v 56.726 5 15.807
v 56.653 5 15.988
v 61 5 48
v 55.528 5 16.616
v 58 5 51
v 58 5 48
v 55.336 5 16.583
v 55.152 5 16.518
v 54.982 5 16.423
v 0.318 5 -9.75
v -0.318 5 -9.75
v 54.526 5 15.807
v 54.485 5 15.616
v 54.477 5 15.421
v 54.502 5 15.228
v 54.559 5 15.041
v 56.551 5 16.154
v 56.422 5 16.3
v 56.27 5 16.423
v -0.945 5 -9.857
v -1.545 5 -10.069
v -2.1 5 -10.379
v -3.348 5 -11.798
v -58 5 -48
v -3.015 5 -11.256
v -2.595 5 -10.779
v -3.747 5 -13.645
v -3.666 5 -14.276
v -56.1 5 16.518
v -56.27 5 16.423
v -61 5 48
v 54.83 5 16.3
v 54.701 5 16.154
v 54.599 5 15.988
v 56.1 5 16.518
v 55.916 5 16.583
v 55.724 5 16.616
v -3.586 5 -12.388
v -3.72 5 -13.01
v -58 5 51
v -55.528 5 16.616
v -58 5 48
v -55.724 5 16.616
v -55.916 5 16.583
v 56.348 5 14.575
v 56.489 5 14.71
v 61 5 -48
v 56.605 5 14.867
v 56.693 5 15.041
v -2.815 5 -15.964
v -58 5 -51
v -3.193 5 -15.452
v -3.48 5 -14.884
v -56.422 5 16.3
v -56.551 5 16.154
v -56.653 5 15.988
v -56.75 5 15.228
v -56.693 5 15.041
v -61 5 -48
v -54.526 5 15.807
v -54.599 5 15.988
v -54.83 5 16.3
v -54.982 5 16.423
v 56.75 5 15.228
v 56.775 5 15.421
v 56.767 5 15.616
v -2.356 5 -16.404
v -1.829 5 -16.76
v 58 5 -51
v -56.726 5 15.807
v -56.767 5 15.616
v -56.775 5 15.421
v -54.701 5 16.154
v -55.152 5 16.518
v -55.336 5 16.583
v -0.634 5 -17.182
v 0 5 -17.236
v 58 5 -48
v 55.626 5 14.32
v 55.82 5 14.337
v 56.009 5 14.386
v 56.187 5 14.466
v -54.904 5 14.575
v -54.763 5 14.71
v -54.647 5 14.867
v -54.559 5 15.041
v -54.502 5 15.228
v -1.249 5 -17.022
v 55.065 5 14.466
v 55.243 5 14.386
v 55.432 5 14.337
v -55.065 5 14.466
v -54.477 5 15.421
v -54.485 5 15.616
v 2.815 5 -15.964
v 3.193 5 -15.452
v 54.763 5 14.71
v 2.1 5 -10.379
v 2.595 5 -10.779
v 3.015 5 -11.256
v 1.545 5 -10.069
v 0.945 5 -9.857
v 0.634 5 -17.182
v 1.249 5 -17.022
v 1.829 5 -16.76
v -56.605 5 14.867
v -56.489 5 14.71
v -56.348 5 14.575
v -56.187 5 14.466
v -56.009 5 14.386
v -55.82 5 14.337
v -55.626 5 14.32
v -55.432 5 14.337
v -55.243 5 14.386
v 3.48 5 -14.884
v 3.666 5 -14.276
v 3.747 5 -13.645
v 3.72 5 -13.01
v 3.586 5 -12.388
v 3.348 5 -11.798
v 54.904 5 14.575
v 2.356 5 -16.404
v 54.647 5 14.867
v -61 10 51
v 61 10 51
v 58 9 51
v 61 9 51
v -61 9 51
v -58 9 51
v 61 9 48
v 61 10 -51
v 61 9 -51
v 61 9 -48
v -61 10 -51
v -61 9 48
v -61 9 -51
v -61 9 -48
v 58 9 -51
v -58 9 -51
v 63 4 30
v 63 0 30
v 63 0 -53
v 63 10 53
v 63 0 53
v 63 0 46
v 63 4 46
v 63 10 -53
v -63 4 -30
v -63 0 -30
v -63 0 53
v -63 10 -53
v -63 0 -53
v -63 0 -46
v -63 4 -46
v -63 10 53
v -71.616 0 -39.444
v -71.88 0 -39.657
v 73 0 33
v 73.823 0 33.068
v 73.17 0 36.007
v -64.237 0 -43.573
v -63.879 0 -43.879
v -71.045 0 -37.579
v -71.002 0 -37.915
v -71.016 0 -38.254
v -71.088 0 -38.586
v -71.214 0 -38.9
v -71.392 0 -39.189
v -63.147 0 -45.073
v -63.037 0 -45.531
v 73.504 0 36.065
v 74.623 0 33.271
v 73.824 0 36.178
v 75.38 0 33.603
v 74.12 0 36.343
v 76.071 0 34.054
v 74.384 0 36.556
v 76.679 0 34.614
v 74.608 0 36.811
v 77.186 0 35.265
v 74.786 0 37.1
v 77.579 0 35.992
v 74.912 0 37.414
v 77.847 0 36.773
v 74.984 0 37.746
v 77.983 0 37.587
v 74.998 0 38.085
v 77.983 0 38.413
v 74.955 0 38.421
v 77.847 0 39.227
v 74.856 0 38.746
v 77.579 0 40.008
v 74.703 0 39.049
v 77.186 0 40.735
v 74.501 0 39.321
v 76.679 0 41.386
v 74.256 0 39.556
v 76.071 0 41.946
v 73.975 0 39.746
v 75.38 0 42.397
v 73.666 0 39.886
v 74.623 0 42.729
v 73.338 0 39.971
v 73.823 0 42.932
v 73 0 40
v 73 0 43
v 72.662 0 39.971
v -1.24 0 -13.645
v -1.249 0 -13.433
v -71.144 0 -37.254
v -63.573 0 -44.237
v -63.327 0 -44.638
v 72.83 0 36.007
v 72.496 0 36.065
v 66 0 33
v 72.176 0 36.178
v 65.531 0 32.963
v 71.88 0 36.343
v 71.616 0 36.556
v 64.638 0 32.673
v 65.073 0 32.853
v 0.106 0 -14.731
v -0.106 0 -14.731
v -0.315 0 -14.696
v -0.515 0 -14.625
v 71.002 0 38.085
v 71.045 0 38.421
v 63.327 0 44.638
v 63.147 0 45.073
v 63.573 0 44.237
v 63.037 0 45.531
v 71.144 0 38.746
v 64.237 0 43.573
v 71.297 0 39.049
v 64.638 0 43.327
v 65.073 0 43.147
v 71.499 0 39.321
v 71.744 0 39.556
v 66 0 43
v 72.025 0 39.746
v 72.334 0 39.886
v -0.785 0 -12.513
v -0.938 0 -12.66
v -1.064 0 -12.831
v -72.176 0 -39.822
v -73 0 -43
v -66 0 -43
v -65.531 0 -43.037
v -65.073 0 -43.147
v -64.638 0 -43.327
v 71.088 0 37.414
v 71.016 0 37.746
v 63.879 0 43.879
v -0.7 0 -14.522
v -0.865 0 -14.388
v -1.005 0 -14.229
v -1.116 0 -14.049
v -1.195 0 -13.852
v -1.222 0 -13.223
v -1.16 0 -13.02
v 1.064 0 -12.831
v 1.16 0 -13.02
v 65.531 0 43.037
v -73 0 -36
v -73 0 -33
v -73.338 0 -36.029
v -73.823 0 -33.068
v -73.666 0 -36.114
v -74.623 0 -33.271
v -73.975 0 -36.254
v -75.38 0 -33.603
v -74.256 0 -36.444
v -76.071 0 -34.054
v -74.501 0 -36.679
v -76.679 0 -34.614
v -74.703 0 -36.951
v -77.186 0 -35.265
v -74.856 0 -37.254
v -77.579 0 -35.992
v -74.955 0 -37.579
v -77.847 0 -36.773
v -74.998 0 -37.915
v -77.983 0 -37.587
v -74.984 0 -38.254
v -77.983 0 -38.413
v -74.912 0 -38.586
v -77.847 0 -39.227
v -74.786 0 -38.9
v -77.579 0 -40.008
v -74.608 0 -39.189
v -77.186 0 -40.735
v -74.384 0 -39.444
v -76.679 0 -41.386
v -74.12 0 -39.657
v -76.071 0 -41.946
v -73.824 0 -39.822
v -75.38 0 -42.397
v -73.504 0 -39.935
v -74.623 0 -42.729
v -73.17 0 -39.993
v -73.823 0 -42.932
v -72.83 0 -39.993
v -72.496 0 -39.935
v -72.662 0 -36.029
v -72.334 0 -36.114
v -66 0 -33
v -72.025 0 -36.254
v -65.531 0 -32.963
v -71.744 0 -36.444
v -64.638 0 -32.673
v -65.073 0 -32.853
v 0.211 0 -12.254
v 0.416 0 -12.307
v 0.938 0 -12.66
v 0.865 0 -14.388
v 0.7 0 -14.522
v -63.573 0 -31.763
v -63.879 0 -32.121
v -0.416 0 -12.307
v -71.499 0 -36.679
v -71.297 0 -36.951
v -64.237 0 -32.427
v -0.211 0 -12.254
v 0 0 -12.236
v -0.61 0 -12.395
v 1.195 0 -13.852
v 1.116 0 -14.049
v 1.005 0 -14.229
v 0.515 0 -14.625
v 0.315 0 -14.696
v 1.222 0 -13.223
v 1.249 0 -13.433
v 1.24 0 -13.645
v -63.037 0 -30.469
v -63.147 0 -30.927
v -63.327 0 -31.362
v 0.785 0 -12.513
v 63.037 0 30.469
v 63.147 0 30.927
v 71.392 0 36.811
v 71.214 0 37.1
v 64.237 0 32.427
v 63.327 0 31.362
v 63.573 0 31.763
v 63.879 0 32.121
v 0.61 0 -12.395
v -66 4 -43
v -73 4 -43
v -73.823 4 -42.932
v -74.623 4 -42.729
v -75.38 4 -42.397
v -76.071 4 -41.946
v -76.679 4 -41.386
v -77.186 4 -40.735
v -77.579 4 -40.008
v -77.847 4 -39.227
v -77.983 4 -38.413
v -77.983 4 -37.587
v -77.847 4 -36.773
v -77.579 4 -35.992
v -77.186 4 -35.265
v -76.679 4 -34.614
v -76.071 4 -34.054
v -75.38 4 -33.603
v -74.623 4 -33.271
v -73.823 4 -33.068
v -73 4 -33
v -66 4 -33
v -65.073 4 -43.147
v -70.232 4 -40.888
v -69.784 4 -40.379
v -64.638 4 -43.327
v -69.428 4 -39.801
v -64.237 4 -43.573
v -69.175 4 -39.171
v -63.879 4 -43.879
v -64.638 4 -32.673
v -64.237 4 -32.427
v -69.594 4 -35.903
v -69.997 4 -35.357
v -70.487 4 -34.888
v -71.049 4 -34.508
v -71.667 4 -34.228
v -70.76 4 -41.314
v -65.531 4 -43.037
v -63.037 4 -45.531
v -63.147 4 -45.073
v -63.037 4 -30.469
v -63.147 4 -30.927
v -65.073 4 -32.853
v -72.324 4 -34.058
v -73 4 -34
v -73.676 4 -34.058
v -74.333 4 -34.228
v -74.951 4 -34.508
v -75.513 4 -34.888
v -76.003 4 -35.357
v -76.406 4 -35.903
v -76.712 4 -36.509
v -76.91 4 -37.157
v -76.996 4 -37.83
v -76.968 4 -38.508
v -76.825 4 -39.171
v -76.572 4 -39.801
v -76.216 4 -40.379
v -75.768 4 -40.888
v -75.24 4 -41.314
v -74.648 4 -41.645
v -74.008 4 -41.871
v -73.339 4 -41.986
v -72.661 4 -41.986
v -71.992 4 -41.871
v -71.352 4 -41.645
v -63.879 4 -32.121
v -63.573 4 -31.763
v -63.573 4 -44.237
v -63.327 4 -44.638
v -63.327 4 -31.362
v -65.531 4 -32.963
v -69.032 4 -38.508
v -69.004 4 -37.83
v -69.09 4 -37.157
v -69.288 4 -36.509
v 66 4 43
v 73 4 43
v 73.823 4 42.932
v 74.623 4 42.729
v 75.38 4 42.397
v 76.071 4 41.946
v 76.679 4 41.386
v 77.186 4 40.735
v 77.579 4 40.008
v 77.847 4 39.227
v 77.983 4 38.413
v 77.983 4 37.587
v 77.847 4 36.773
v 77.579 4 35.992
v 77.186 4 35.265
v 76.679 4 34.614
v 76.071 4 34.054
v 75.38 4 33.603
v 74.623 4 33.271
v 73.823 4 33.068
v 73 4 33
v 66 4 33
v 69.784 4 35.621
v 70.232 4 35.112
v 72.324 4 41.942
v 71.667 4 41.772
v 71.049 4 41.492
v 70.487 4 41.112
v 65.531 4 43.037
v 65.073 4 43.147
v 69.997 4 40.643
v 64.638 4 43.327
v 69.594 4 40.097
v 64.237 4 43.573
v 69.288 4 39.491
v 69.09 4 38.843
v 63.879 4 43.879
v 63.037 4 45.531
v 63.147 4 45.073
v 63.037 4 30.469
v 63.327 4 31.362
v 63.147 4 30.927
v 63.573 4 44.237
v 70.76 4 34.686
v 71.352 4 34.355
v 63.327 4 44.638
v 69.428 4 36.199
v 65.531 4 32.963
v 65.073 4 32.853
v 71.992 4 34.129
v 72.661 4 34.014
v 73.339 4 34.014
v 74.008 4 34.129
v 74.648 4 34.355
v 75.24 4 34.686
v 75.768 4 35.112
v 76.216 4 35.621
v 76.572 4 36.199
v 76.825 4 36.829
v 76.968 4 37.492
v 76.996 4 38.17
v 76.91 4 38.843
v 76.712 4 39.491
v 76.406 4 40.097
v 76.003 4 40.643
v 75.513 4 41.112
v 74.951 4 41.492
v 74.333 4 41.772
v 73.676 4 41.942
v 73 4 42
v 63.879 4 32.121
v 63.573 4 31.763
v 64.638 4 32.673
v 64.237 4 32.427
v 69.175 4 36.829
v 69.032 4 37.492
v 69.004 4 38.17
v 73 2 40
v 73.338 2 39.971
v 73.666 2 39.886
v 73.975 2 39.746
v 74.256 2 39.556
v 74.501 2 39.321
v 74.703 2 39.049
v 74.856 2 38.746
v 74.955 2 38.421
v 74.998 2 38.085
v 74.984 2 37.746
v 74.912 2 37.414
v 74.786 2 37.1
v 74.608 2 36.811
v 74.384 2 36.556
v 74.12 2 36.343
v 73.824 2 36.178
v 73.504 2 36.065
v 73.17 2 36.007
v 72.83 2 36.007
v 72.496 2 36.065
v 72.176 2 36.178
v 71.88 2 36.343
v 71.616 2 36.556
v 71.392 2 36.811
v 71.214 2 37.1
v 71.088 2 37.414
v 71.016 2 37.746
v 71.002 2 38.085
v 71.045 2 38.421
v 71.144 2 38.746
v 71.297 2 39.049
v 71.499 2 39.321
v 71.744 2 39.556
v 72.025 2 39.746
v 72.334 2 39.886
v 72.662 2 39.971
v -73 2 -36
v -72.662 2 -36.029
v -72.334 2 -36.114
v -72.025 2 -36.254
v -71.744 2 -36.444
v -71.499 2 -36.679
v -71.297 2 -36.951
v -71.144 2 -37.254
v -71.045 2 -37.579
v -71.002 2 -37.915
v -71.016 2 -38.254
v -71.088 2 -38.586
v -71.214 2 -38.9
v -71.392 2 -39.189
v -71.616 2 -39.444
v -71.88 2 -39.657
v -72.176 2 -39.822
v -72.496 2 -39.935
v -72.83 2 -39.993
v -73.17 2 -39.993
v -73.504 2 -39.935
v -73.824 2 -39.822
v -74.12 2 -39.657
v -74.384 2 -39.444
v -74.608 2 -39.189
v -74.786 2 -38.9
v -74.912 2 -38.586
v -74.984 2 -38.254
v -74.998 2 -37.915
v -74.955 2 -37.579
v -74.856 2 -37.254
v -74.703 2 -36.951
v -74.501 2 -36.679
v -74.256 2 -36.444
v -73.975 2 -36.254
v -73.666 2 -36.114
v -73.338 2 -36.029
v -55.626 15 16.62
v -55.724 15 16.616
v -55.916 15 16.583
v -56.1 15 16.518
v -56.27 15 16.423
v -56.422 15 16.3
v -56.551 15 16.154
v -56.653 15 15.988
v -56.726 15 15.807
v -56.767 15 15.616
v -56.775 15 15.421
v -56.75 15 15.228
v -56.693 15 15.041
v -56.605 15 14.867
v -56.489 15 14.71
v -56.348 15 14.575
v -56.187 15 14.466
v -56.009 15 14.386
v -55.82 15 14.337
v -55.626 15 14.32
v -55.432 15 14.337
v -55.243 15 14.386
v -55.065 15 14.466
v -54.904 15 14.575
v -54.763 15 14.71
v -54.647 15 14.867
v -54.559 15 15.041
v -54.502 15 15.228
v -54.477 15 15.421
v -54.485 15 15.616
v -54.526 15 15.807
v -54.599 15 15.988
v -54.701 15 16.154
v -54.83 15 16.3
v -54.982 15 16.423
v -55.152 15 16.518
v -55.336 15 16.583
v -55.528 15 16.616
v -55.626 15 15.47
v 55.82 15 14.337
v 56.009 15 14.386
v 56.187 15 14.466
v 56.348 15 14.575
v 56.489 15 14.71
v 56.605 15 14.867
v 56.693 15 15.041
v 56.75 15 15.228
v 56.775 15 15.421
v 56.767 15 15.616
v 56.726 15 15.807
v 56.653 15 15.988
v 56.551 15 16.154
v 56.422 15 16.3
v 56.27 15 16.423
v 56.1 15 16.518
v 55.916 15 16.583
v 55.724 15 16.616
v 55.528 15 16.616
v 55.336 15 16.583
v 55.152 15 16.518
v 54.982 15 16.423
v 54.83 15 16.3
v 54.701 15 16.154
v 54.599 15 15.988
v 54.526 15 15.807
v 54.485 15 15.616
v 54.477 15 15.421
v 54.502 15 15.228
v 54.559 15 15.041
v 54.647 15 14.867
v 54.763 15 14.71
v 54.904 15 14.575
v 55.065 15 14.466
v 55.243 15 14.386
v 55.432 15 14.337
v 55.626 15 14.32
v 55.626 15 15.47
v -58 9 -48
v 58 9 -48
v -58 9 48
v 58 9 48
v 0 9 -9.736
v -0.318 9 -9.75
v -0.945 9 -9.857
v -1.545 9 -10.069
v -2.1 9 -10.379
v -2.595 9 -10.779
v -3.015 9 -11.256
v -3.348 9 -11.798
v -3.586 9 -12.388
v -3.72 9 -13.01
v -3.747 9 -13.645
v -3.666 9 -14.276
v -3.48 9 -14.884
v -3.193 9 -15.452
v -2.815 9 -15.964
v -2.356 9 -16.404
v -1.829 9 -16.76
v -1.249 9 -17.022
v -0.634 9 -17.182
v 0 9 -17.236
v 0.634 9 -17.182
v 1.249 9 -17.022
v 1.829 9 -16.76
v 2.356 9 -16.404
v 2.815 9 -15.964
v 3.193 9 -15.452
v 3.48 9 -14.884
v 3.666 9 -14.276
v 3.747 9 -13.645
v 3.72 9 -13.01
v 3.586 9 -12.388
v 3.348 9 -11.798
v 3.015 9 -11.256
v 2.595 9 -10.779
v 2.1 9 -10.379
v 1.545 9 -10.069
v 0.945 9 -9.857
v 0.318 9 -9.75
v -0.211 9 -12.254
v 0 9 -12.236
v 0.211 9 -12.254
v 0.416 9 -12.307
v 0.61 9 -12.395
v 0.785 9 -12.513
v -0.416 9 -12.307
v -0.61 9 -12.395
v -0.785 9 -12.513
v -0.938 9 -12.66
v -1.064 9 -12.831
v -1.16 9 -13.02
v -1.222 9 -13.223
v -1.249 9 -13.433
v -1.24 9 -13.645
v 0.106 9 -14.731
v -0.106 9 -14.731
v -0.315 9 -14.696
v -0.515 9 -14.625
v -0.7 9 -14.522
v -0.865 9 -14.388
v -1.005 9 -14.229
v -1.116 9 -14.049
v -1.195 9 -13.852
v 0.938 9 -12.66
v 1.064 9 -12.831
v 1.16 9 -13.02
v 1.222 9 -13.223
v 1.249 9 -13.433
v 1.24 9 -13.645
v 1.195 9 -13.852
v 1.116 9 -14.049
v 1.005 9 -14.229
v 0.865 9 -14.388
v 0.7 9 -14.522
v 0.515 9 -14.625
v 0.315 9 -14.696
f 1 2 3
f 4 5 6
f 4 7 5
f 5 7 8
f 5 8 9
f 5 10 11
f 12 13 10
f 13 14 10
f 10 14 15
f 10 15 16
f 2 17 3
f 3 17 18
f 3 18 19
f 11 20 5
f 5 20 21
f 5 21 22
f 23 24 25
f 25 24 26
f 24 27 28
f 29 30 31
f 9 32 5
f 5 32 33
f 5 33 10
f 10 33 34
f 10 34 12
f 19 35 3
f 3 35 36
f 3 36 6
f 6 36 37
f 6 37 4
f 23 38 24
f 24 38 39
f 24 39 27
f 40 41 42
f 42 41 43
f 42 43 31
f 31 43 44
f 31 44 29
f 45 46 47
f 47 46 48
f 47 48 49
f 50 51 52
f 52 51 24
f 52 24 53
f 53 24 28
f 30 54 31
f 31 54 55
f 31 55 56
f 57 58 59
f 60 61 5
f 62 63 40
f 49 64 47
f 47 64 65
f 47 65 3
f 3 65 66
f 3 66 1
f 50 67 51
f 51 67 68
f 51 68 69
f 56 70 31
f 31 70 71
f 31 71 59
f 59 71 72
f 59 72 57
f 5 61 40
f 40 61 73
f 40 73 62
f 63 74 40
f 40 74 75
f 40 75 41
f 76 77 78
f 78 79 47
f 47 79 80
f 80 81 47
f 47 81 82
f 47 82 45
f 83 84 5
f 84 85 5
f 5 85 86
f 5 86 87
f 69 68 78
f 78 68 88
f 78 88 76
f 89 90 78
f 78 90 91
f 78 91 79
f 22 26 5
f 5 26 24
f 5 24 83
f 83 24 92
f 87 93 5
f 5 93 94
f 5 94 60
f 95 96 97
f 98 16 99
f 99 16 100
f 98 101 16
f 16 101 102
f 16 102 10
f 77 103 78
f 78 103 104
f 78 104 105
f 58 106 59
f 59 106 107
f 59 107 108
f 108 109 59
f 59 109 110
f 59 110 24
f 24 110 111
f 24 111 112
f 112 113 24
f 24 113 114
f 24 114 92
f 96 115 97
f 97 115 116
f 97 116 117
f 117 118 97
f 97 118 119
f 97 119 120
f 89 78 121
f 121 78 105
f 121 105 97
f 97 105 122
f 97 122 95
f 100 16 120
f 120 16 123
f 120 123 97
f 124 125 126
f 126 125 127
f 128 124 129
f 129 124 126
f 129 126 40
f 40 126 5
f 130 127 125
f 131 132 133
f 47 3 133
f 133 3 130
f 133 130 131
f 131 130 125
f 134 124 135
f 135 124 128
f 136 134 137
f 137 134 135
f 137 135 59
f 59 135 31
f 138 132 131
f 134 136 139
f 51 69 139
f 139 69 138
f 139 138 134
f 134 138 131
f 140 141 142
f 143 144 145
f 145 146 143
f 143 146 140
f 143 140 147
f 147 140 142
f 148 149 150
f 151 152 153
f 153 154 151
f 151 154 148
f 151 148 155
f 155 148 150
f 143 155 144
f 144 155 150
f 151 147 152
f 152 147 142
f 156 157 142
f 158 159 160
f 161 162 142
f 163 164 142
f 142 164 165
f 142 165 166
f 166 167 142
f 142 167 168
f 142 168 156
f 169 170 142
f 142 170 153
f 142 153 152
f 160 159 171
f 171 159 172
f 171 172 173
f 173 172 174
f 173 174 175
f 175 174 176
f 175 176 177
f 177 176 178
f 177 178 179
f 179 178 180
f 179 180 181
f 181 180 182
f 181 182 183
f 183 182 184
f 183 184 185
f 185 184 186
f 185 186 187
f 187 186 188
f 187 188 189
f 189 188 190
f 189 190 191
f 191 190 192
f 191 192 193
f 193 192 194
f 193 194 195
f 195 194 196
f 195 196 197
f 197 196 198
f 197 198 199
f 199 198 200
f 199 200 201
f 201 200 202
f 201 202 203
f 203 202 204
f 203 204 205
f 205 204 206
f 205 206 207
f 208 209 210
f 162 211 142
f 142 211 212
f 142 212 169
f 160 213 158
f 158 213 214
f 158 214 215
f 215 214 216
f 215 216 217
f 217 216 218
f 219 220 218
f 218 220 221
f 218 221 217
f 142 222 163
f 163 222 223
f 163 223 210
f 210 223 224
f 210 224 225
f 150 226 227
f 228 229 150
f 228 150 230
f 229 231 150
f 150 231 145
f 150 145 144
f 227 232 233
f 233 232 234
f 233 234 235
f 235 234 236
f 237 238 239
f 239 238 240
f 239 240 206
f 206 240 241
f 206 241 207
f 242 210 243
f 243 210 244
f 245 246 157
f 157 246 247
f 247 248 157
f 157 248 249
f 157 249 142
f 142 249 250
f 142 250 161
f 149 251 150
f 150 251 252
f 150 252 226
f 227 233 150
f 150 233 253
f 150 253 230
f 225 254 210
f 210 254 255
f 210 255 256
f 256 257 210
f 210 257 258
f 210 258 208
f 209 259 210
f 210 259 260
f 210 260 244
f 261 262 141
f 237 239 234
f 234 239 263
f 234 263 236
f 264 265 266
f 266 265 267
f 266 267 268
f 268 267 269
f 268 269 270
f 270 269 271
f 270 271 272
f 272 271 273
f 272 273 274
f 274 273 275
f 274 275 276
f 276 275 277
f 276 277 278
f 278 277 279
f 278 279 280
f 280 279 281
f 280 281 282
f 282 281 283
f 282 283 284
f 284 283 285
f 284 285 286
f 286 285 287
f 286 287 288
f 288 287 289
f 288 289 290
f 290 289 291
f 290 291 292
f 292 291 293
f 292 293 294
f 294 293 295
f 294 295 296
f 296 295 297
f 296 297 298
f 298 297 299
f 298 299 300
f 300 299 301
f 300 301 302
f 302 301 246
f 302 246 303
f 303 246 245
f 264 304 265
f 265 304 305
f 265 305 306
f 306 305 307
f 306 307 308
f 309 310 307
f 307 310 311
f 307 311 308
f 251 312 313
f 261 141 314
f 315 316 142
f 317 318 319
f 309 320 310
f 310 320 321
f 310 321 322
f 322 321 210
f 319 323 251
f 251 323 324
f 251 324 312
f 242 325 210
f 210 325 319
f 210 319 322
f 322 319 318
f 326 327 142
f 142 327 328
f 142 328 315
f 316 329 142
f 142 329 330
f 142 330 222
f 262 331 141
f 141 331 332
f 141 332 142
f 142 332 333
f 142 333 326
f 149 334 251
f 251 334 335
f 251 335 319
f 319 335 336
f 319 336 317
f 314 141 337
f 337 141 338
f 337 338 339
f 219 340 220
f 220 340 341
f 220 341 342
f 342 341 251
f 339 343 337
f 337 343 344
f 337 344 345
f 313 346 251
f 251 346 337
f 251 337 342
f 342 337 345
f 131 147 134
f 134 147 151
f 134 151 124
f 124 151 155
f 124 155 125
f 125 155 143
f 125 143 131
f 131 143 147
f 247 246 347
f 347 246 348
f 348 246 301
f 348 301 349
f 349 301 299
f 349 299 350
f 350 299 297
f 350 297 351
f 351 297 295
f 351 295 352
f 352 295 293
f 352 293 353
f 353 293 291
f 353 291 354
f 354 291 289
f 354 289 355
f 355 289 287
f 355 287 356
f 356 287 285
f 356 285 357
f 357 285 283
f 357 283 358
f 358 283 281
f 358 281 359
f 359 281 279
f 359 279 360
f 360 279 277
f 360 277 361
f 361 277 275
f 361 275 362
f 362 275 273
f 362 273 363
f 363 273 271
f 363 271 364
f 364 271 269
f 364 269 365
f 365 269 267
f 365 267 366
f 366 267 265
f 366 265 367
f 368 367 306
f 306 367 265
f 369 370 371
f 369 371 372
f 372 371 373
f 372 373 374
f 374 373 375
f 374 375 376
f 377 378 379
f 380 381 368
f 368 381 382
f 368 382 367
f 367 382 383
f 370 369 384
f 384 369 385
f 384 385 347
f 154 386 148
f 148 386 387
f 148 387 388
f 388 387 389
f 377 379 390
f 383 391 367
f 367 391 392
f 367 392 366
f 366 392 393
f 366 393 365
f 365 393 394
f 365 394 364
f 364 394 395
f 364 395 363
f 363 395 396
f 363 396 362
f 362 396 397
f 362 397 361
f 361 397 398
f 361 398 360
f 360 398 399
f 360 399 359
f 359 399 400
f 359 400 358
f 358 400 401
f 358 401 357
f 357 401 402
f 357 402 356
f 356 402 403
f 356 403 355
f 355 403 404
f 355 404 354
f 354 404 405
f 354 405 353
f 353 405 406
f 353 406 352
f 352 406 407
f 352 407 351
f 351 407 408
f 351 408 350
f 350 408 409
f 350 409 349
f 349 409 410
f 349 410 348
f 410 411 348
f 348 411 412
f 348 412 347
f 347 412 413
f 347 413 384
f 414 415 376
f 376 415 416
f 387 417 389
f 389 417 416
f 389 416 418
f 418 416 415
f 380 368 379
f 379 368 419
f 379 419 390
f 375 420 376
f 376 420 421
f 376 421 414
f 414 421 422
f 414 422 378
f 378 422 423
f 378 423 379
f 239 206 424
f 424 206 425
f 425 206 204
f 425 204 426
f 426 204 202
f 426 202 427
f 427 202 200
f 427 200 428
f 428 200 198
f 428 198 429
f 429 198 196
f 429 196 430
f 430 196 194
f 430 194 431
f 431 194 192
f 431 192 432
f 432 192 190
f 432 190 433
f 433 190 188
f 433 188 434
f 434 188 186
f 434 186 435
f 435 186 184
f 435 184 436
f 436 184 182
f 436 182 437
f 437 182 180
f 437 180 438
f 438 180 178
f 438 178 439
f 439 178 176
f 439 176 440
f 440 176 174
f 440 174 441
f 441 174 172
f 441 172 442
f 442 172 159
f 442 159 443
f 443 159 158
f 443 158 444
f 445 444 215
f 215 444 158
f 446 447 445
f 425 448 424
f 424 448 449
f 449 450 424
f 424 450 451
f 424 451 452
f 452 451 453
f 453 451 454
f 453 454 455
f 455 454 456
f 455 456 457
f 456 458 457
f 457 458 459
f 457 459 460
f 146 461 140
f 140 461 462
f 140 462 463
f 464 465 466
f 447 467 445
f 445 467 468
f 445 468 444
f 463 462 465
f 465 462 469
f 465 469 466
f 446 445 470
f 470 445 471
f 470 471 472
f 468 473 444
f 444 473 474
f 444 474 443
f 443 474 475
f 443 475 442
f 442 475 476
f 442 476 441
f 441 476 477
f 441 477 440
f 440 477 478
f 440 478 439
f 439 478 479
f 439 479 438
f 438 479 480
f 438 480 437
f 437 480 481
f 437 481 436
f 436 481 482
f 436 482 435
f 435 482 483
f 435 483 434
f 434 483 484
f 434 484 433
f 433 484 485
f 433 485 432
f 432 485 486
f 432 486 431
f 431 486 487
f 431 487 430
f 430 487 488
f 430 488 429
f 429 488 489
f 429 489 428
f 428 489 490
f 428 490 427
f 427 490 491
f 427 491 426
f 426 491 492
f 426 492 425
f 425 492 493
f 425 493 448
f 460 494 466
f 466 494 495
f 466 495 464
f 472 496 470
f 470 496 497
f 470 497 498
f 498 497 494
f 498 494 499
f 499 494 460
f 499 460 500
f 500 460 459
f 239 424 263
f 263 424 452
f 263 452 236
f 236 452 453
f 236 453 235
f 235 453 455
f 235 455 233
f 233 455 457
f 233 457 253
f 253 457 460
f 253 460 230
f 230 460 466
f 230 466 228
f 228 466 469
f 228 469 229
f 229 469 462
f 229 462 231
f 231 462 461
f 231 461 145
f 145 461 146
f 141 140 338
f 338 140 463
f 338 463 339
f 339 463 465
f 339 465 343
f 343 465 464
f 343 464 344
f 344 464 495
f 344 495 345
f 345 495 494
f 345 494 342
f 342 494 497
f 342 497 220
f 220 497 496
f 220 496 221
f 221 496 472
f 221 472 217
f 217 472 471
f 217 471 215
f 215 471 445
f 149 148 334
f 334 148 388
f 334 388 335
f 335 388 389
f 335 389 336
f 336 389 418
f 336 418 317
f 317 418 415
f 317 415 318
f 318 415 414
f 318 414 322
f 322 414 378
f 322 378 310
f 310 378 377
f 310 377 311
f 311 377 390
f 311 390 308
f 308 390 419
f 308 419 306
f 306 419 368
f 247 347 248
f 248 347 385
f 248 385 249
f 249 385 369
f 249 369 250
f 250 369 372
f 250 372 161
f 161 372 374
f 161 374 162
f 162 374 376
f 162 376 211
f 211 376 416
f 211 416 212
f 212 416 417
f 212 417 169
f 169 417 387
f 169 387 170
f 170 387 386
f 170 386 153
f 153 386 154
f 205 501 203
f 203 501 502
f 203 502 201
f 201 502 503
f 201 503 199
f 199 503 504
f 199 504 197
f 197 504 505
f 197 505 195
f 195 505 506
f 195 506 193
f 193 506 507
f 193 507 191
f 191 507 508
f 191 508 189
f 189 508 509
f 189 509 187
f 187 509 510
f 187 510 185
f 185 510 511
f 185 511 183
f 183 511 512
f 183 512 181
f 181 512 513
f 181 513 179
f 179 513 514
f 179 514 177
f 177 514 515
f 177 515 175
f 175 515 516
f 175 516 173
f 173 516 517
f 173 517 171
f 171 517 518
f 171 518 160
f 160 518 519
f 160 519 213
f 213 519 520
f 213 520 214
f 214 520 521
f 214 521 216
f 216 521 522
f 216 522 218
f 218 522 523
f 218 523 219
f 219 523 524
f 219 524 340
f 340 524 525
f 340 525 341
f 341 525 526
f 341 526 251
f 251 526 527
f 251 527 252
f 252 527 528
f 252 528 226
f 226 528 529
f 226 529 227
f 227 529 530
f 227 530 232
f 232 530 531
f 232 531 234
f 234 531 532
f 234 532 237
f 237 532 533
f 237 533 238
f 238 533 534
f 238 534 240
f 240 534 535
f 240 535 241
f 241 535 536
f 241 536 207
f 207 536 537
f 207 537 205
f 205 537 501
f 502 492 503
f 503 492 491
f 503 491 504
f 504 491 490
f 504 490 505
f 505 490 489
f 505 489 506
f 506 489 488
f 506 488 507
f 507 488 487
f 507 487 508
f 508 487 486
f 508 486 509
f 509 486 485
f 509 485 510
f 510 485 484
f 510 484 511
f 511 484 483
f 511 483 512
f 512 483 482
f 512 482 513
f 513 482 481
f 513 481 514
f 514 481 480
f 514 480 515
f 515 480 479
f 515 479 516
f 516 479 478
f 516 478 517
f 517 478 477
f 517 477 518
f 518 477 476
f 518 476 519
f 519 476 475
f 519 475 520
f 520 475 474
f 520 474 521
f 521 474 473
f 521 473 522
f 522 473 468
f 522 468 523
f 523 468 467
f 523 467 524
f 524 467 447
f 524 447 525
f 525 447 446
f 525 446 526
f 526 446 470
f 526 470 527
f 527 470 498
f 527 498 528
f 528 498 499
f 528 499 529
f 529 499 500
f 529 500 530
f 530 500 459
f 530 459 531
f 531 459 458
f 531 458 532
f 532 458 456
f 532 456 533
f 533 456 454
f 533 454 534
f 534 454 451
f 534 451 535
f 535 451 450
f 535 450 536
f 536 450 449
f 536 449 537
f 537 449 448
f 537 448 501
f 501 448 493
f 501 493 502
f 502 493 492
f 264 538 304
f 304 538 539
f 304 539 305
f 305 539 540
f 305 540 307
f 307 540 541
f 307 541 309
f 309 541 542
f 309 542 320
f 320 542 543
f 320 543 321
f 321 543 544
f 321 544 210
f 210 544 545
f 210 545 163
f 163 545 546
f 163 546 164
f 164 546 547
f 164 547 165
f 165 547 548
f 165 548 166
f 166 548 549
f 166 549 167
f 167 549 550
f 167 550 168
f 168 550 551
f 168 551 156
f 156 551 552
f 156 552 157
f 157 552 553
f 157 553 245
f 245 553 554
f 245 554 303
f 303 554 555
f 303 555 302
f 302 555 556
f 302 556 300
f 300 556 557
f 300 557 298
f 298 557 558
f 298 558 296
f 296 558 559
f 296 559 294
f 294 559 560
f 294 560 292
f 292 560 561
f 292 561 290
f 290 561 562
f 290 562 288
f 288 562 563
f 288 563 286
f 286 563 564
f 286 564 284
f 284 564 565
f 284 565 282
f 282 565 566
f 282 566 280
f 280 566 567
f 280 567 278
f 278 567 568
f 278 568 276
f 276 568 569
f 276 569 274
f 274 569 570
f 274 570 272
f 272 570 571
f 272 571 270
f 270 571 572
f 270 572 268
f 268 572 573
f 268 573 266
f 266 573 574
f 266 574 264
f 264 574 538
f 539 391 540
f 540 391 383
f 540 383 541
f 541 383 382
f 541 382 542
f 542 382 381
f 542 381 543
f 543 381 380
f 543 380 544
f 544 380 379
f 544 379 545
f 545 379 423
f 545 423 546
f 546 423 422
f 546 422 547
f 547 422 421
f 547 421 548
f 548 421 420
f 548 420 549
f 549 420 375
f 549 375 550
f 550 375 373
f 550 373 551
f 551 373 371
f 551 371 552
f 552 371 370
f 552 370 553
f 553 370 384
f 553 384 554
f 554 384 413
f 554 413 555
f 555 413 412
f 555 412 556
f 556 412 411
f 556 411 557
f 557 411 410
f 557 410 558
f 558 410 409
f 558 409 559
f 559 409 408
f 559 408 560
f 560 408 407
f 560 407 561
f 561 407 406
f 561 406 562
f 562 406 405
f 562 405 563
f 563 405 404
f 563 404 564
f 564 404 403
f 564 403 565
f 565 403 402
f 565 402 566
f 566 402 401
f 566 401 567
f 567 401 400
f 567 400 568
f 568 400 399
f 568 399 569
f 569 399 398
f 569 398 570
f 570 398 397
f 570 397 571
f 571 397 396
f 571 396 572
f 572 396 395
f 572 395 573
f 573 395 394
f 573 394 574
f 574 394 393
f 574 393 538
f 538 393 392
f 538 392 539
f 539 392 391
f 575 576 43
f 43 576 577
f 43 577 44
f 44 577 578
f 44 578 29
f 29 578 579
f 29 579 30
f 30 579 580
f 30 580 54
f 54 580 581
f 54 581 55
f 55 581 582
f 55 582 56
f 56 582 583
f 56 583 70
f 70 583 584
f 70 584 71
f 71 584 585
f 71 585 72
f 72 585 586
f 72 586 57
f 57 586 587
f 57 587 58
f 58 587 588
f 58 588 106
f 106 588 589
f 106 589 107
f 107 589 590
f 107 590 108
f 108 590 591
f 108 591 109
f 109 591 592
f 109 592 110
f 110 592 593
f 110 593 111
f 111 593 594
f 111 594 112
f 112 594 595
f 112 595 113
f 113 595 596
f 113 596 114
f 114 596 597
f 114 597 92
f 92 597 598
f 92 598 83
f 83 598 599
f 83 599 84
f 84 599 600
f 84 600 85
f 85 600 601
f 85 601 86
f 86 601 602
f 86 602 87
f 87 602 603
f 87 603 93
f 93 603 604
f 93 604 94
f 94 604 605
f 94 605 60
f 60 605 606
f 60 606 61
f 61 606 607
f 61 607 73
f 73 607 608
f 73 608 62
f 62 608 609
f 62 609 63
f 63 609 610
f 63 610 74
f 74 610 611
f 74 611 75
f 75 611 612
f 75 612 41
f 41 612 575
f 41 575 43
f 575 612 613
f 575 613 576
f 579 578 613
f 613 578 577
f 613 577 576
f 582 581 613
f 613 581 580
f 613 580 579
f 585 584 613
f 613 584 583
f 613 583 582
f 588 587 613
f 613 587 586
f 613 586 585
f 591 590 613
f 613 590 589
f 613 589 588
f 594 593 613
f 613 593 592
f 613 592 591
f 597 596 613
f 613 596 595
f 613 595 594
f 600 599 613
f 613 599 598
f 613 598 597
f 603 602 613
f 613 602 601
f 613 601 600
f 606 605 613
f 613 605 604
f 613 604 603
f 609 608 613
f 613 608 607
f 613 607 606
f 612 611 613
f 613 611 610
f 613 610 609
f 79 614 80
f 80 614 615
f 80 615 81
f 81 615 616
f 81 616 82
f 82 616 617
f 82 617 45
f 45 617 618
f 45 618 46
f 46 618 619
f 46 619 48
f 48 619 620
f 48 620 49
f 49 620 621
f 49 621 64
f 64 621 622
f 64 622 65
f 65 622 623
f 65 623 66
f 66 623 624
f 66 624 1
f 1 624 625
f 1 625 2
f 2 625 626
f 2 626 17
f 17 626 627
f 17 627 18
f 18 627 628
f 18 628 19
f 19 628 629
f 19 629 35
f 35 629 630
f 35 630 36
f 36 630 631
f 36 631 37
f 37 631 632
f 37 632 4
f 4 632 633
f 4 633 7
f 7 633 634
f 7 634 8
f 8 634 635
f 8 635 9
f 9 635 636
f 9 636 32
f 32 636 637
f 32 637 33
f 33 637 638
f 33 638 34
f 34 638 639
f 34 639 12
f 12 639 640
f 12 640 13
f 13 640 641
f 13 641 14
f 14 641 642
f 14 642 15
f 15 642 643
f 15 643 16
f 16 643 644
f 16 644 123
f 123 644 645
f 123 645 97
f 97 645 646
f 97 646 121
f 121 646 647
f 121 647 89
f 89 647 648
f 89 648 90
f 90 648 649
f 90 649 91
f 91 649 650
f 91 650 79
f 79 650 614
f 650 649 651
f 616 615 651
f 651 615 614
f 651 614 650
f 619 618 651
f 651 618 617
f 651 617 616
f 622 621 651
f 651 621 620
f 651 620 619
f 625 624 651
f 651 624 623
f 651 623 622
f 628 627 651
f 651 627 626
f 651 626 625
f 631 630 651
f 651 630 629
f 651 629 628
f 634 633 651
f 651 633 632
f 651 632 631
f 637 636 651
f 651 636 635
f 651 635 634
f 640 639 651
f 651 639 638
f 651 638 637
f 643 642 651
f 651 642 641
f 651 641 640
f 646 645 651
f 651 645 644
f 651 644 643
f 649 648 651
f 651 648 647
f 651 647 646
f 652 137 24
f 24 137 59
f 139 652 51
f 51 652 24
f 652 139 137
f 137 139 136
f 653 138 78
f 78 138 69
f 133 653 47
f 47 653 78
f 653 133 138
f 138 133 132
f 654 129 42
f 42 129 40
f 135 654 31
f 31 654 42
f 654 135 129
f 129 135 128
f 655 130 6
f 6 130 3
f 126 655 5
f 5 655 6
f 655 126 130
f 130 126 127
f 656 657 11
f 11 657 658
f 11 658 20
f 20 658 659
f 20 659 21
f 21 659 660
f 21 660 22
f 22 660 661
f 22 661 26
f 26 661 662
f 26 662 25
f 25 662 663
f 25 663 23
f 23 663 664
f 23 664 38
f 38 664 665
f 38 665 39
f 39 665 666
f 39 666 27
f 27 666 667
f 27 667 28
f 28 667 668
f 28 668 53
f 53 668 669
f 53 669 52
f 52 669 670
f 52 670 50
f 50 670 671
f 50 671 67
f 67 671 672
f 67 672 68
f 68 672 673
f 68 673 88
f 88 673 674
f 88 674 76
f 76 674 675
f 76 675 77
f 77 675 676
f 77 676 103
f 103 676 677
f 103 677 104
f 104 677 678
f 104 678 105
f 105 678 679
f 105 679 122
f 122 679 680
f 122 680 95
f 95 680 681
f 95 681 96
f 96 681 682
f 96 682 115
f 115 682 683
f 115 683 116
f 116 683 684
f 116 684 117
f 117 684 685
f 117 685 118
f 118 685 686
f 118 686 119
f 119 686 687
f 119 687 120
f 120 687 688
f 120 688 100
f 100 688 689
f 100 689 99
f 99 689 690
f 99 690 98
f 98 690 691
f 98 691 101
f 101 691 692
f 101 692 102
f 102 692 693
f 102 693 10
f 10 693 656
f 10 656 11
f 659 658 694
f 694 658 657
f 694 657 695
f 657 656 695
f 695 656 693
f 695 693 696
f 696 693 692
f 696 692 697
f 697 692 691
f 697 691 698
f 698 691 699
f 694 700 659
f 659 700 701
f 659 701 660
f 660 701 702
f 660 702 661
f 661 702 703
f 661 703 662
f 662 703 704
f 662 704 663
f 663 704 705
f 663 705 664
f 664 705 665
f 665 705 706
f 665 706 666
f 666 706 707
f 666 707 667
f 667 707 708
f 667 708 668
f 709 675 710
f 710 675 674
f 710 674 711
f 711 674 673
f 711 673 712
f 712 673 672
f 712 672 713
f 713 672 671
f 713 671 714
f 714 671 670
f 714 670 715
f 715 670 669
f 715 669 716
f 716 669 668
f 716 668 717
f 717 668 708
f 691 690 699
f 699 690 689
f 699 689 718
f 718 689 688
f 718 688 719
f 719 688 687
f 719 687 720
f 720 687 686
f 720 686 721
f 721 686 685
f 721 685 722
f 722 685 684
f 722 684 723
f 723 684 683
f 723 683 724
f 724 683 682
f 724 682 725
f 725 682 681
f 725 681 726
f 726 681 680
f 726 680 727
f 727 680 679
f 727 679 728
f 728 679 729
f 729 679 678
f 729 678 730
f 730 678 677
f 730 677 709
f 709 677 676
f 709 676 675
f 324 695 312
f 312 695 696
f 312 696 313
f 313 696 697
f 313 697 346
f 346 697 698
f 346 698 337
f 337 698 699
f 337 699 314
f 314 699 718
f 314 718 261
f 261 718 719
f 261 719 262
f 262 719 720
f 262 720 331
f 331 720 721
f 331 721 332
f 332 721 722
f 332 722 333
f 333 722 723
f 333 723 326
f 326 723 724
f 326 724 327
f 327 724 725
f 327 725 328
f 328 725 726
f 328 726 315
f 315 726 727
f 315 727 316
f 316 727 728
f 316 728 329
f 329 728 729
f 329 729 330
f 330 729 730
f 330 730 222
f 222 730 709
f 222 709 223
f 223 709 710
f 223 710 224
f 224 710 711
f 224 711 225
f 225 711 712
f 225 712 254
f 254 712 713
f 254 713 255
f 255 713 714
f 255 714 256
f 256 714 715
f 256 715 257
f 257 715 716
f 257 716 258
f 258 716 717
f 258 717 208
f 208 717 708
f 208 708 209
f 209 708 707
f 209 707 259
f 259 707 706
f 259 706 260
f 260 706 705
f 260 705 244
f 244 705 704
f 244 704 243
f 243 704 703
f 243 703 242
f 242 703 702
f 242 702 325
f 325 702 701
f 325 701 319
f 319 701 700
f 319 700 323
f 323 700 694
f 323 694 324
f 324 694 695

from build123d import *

# Parameters (mm, degrees)
SKETCH1_W                       = 126
SKETCH1_H                       = 106
BOSS_EXTRUDE1_DEPTH             = 5
SKETCH3_W                       = 126
SKETCH3_H                       = 106
SKETCH3_W_2                     = 122
SKETCH3_H_2                     = 102
BOSS_EXTRUDE3_DEPTH             = 5
BOSS_EXTRUDE5_DEPTH             = 4
FILLET1_R                       = 3
F_4_0MM_DOWEL_HOLE1_D           = 4
F_4_0MM_DOWEL_HOLE1_CSINK_D     = 8
F_4_0MM_DOWEL_HOLE1_CSINK_ANGLE = 90
SKETCH17_R                      = 1.15
BOSS_EXTRUDE6_DEPTH             = 10
SKETCH18_W                      = 3
SKETCH18_H                      = 3
BOSS_EXTRUDE7_DEPTH             = 4
SKETCH4_R                       = 3.75
BOSS_EXTRUDE8_DEPTH             = 4
F_2_5MM_DOWEL_HOLE1_D           = 2.5


with BuildPart() as part:
    # Sketch1 → Boss-Extrude1 (new body)
    with BuildSketch(Plane(origin=(0, 0, 0), x_dir=(1, 0, 0), z_dir=(0, 1, 0))):
        Rectangle(SKETCH1_W, SKETCH1_H)
    extrude(amount=BOSS_EXTRUDE1_DEPTH)

    # Sketch3 → Boss-Extrude3 (add)
    with BuildSketch(Plane(origin=(0, 5, 0), x_dir=(1, 0, 0), z_dir=(0, 1, 0))):
        Rectangle(SKETCH3_W, SKETCH3_H)
        Rectangle(SKETCH3_W_2, SKETCH3_H_2, mode=Mode.SUBTRACT)
    extrude(amount=BOSS_EXTRUDE3_DEPTH)

    # Sketch7 → Boss-Extrude5 (add)
    with BuildSketch(Plane(origin=(0, 0, 0), x_dir=(1, 0, 0), z_dir=(0, 1, 0))):
        with BuildLine():
            Line((-63, 43), (-73, 43))
            ThreePointArc((-73, 43), (-78, 38), (-73, 33))
            Line((-73, 33), (-63, 33))
            Line((-63, 33), (-63, 43))
        make_face()
        with BuildLine():
            Line((63, -33), (73, -33))
            ThreePointArc((73, -33), (78, -38), (73, -43))
            Line((73, -43), (63, -43))
            Line((63, -43), (63, -33))
        make_face()
    extrude(amount=BOSS_EXTRUDE5_DEPTH)

    # Fillet1
    fillet1_edges = [part.edges().sort_by_distance(p)[0] for p in [
        (-63, 2, -33),
        (-63, 2, -43),
        (63, 2, 33),
        (63, 2, 43),
    ]]
    fillet(fillet1_edges, radius=FILLET1_R)

    # Ø4.0mm Dowel Hole1 (through all)
    with Locations(Plane(origin=(0, 4, 0), x_dir=(1, 0, 0), z_dir=(0, 1, 0))):
        with Locations((-73, 38), (73, -38)):
            CounterSinkHole(F_4_0MM_DOWEL_HOLE1_D / 2, F_4_0MM_DOWEL_HOLE1_CSINK_D / 2, counter_sink_angle=F_4_0MM_DOWEL_HOLE1_CSINK_ANGLE)

    # Sketch17 → Boss-Extrude6 (add)
    with BuildSketch(Plane(origin=(0, 5, 0), x_dir=(1, 0, 0), z_dir=(0, 1, 0))):
        with Locations(Location((-55.626, -15.47, 0), (0, 0, 90))):
            Circle(SKETCH17_R)
        with Locations(Location((55.626, -15.47, 0), (0, 0, 90))):
            Circle(SKETCH17_R)
    extrude(amount=BOSS_EXTRUDE6_DEPTH)

    # Sketch18 → Boss-Extrude7 (add)
    with BuildSketch(Plane(origin=(0, 5, 0), x_dir=(1, 0, 0), z_dir=(0, 1, 0))):
        with Locations((-59.5, 49.5)):
            Rectangle(SKETCH18_W, SKETCH18_H)
        with Locations((59.5, 49.5)):
            Rectangle(SKETCH18_W, SKETCH18_H)
        with Locations((-59.5, -49.5)):
            Rectangle(SKETCH18_W, SKETCH18_H)
        with Locations((59.5, -49.5)):
            Rectangle(SKETCH18_W, SKETCH18_H)
    extrude(amount=BOSS_EXTRUDE7_DEPTH)

    # Sketch4 → Boss-Extrude8 (add)
    with BuildSketch(Plane(origin=(0, 5, 0), x_dir=(1, 0, 0), z_dir=(0, 1, 0))):
        with Locations(Location((0, 13.486, 0), (0, 0, 90))):
            Circle(SKETCH4_R)
    extrude(amount=BOSS_EXTRUDE8_DEPTH)

    # Ø2.5mm Dowel Hole1 (through all)
    with Locations(Plane(origin=(0, 9, 0), x_dir=(1, 0, 0), z_dir=(0, 1, 0))):
        with Locations((0, 13.486)):
            Hole(F_2_5MM_DOWEL_HOLE1_D / 2)


solid = part.part
